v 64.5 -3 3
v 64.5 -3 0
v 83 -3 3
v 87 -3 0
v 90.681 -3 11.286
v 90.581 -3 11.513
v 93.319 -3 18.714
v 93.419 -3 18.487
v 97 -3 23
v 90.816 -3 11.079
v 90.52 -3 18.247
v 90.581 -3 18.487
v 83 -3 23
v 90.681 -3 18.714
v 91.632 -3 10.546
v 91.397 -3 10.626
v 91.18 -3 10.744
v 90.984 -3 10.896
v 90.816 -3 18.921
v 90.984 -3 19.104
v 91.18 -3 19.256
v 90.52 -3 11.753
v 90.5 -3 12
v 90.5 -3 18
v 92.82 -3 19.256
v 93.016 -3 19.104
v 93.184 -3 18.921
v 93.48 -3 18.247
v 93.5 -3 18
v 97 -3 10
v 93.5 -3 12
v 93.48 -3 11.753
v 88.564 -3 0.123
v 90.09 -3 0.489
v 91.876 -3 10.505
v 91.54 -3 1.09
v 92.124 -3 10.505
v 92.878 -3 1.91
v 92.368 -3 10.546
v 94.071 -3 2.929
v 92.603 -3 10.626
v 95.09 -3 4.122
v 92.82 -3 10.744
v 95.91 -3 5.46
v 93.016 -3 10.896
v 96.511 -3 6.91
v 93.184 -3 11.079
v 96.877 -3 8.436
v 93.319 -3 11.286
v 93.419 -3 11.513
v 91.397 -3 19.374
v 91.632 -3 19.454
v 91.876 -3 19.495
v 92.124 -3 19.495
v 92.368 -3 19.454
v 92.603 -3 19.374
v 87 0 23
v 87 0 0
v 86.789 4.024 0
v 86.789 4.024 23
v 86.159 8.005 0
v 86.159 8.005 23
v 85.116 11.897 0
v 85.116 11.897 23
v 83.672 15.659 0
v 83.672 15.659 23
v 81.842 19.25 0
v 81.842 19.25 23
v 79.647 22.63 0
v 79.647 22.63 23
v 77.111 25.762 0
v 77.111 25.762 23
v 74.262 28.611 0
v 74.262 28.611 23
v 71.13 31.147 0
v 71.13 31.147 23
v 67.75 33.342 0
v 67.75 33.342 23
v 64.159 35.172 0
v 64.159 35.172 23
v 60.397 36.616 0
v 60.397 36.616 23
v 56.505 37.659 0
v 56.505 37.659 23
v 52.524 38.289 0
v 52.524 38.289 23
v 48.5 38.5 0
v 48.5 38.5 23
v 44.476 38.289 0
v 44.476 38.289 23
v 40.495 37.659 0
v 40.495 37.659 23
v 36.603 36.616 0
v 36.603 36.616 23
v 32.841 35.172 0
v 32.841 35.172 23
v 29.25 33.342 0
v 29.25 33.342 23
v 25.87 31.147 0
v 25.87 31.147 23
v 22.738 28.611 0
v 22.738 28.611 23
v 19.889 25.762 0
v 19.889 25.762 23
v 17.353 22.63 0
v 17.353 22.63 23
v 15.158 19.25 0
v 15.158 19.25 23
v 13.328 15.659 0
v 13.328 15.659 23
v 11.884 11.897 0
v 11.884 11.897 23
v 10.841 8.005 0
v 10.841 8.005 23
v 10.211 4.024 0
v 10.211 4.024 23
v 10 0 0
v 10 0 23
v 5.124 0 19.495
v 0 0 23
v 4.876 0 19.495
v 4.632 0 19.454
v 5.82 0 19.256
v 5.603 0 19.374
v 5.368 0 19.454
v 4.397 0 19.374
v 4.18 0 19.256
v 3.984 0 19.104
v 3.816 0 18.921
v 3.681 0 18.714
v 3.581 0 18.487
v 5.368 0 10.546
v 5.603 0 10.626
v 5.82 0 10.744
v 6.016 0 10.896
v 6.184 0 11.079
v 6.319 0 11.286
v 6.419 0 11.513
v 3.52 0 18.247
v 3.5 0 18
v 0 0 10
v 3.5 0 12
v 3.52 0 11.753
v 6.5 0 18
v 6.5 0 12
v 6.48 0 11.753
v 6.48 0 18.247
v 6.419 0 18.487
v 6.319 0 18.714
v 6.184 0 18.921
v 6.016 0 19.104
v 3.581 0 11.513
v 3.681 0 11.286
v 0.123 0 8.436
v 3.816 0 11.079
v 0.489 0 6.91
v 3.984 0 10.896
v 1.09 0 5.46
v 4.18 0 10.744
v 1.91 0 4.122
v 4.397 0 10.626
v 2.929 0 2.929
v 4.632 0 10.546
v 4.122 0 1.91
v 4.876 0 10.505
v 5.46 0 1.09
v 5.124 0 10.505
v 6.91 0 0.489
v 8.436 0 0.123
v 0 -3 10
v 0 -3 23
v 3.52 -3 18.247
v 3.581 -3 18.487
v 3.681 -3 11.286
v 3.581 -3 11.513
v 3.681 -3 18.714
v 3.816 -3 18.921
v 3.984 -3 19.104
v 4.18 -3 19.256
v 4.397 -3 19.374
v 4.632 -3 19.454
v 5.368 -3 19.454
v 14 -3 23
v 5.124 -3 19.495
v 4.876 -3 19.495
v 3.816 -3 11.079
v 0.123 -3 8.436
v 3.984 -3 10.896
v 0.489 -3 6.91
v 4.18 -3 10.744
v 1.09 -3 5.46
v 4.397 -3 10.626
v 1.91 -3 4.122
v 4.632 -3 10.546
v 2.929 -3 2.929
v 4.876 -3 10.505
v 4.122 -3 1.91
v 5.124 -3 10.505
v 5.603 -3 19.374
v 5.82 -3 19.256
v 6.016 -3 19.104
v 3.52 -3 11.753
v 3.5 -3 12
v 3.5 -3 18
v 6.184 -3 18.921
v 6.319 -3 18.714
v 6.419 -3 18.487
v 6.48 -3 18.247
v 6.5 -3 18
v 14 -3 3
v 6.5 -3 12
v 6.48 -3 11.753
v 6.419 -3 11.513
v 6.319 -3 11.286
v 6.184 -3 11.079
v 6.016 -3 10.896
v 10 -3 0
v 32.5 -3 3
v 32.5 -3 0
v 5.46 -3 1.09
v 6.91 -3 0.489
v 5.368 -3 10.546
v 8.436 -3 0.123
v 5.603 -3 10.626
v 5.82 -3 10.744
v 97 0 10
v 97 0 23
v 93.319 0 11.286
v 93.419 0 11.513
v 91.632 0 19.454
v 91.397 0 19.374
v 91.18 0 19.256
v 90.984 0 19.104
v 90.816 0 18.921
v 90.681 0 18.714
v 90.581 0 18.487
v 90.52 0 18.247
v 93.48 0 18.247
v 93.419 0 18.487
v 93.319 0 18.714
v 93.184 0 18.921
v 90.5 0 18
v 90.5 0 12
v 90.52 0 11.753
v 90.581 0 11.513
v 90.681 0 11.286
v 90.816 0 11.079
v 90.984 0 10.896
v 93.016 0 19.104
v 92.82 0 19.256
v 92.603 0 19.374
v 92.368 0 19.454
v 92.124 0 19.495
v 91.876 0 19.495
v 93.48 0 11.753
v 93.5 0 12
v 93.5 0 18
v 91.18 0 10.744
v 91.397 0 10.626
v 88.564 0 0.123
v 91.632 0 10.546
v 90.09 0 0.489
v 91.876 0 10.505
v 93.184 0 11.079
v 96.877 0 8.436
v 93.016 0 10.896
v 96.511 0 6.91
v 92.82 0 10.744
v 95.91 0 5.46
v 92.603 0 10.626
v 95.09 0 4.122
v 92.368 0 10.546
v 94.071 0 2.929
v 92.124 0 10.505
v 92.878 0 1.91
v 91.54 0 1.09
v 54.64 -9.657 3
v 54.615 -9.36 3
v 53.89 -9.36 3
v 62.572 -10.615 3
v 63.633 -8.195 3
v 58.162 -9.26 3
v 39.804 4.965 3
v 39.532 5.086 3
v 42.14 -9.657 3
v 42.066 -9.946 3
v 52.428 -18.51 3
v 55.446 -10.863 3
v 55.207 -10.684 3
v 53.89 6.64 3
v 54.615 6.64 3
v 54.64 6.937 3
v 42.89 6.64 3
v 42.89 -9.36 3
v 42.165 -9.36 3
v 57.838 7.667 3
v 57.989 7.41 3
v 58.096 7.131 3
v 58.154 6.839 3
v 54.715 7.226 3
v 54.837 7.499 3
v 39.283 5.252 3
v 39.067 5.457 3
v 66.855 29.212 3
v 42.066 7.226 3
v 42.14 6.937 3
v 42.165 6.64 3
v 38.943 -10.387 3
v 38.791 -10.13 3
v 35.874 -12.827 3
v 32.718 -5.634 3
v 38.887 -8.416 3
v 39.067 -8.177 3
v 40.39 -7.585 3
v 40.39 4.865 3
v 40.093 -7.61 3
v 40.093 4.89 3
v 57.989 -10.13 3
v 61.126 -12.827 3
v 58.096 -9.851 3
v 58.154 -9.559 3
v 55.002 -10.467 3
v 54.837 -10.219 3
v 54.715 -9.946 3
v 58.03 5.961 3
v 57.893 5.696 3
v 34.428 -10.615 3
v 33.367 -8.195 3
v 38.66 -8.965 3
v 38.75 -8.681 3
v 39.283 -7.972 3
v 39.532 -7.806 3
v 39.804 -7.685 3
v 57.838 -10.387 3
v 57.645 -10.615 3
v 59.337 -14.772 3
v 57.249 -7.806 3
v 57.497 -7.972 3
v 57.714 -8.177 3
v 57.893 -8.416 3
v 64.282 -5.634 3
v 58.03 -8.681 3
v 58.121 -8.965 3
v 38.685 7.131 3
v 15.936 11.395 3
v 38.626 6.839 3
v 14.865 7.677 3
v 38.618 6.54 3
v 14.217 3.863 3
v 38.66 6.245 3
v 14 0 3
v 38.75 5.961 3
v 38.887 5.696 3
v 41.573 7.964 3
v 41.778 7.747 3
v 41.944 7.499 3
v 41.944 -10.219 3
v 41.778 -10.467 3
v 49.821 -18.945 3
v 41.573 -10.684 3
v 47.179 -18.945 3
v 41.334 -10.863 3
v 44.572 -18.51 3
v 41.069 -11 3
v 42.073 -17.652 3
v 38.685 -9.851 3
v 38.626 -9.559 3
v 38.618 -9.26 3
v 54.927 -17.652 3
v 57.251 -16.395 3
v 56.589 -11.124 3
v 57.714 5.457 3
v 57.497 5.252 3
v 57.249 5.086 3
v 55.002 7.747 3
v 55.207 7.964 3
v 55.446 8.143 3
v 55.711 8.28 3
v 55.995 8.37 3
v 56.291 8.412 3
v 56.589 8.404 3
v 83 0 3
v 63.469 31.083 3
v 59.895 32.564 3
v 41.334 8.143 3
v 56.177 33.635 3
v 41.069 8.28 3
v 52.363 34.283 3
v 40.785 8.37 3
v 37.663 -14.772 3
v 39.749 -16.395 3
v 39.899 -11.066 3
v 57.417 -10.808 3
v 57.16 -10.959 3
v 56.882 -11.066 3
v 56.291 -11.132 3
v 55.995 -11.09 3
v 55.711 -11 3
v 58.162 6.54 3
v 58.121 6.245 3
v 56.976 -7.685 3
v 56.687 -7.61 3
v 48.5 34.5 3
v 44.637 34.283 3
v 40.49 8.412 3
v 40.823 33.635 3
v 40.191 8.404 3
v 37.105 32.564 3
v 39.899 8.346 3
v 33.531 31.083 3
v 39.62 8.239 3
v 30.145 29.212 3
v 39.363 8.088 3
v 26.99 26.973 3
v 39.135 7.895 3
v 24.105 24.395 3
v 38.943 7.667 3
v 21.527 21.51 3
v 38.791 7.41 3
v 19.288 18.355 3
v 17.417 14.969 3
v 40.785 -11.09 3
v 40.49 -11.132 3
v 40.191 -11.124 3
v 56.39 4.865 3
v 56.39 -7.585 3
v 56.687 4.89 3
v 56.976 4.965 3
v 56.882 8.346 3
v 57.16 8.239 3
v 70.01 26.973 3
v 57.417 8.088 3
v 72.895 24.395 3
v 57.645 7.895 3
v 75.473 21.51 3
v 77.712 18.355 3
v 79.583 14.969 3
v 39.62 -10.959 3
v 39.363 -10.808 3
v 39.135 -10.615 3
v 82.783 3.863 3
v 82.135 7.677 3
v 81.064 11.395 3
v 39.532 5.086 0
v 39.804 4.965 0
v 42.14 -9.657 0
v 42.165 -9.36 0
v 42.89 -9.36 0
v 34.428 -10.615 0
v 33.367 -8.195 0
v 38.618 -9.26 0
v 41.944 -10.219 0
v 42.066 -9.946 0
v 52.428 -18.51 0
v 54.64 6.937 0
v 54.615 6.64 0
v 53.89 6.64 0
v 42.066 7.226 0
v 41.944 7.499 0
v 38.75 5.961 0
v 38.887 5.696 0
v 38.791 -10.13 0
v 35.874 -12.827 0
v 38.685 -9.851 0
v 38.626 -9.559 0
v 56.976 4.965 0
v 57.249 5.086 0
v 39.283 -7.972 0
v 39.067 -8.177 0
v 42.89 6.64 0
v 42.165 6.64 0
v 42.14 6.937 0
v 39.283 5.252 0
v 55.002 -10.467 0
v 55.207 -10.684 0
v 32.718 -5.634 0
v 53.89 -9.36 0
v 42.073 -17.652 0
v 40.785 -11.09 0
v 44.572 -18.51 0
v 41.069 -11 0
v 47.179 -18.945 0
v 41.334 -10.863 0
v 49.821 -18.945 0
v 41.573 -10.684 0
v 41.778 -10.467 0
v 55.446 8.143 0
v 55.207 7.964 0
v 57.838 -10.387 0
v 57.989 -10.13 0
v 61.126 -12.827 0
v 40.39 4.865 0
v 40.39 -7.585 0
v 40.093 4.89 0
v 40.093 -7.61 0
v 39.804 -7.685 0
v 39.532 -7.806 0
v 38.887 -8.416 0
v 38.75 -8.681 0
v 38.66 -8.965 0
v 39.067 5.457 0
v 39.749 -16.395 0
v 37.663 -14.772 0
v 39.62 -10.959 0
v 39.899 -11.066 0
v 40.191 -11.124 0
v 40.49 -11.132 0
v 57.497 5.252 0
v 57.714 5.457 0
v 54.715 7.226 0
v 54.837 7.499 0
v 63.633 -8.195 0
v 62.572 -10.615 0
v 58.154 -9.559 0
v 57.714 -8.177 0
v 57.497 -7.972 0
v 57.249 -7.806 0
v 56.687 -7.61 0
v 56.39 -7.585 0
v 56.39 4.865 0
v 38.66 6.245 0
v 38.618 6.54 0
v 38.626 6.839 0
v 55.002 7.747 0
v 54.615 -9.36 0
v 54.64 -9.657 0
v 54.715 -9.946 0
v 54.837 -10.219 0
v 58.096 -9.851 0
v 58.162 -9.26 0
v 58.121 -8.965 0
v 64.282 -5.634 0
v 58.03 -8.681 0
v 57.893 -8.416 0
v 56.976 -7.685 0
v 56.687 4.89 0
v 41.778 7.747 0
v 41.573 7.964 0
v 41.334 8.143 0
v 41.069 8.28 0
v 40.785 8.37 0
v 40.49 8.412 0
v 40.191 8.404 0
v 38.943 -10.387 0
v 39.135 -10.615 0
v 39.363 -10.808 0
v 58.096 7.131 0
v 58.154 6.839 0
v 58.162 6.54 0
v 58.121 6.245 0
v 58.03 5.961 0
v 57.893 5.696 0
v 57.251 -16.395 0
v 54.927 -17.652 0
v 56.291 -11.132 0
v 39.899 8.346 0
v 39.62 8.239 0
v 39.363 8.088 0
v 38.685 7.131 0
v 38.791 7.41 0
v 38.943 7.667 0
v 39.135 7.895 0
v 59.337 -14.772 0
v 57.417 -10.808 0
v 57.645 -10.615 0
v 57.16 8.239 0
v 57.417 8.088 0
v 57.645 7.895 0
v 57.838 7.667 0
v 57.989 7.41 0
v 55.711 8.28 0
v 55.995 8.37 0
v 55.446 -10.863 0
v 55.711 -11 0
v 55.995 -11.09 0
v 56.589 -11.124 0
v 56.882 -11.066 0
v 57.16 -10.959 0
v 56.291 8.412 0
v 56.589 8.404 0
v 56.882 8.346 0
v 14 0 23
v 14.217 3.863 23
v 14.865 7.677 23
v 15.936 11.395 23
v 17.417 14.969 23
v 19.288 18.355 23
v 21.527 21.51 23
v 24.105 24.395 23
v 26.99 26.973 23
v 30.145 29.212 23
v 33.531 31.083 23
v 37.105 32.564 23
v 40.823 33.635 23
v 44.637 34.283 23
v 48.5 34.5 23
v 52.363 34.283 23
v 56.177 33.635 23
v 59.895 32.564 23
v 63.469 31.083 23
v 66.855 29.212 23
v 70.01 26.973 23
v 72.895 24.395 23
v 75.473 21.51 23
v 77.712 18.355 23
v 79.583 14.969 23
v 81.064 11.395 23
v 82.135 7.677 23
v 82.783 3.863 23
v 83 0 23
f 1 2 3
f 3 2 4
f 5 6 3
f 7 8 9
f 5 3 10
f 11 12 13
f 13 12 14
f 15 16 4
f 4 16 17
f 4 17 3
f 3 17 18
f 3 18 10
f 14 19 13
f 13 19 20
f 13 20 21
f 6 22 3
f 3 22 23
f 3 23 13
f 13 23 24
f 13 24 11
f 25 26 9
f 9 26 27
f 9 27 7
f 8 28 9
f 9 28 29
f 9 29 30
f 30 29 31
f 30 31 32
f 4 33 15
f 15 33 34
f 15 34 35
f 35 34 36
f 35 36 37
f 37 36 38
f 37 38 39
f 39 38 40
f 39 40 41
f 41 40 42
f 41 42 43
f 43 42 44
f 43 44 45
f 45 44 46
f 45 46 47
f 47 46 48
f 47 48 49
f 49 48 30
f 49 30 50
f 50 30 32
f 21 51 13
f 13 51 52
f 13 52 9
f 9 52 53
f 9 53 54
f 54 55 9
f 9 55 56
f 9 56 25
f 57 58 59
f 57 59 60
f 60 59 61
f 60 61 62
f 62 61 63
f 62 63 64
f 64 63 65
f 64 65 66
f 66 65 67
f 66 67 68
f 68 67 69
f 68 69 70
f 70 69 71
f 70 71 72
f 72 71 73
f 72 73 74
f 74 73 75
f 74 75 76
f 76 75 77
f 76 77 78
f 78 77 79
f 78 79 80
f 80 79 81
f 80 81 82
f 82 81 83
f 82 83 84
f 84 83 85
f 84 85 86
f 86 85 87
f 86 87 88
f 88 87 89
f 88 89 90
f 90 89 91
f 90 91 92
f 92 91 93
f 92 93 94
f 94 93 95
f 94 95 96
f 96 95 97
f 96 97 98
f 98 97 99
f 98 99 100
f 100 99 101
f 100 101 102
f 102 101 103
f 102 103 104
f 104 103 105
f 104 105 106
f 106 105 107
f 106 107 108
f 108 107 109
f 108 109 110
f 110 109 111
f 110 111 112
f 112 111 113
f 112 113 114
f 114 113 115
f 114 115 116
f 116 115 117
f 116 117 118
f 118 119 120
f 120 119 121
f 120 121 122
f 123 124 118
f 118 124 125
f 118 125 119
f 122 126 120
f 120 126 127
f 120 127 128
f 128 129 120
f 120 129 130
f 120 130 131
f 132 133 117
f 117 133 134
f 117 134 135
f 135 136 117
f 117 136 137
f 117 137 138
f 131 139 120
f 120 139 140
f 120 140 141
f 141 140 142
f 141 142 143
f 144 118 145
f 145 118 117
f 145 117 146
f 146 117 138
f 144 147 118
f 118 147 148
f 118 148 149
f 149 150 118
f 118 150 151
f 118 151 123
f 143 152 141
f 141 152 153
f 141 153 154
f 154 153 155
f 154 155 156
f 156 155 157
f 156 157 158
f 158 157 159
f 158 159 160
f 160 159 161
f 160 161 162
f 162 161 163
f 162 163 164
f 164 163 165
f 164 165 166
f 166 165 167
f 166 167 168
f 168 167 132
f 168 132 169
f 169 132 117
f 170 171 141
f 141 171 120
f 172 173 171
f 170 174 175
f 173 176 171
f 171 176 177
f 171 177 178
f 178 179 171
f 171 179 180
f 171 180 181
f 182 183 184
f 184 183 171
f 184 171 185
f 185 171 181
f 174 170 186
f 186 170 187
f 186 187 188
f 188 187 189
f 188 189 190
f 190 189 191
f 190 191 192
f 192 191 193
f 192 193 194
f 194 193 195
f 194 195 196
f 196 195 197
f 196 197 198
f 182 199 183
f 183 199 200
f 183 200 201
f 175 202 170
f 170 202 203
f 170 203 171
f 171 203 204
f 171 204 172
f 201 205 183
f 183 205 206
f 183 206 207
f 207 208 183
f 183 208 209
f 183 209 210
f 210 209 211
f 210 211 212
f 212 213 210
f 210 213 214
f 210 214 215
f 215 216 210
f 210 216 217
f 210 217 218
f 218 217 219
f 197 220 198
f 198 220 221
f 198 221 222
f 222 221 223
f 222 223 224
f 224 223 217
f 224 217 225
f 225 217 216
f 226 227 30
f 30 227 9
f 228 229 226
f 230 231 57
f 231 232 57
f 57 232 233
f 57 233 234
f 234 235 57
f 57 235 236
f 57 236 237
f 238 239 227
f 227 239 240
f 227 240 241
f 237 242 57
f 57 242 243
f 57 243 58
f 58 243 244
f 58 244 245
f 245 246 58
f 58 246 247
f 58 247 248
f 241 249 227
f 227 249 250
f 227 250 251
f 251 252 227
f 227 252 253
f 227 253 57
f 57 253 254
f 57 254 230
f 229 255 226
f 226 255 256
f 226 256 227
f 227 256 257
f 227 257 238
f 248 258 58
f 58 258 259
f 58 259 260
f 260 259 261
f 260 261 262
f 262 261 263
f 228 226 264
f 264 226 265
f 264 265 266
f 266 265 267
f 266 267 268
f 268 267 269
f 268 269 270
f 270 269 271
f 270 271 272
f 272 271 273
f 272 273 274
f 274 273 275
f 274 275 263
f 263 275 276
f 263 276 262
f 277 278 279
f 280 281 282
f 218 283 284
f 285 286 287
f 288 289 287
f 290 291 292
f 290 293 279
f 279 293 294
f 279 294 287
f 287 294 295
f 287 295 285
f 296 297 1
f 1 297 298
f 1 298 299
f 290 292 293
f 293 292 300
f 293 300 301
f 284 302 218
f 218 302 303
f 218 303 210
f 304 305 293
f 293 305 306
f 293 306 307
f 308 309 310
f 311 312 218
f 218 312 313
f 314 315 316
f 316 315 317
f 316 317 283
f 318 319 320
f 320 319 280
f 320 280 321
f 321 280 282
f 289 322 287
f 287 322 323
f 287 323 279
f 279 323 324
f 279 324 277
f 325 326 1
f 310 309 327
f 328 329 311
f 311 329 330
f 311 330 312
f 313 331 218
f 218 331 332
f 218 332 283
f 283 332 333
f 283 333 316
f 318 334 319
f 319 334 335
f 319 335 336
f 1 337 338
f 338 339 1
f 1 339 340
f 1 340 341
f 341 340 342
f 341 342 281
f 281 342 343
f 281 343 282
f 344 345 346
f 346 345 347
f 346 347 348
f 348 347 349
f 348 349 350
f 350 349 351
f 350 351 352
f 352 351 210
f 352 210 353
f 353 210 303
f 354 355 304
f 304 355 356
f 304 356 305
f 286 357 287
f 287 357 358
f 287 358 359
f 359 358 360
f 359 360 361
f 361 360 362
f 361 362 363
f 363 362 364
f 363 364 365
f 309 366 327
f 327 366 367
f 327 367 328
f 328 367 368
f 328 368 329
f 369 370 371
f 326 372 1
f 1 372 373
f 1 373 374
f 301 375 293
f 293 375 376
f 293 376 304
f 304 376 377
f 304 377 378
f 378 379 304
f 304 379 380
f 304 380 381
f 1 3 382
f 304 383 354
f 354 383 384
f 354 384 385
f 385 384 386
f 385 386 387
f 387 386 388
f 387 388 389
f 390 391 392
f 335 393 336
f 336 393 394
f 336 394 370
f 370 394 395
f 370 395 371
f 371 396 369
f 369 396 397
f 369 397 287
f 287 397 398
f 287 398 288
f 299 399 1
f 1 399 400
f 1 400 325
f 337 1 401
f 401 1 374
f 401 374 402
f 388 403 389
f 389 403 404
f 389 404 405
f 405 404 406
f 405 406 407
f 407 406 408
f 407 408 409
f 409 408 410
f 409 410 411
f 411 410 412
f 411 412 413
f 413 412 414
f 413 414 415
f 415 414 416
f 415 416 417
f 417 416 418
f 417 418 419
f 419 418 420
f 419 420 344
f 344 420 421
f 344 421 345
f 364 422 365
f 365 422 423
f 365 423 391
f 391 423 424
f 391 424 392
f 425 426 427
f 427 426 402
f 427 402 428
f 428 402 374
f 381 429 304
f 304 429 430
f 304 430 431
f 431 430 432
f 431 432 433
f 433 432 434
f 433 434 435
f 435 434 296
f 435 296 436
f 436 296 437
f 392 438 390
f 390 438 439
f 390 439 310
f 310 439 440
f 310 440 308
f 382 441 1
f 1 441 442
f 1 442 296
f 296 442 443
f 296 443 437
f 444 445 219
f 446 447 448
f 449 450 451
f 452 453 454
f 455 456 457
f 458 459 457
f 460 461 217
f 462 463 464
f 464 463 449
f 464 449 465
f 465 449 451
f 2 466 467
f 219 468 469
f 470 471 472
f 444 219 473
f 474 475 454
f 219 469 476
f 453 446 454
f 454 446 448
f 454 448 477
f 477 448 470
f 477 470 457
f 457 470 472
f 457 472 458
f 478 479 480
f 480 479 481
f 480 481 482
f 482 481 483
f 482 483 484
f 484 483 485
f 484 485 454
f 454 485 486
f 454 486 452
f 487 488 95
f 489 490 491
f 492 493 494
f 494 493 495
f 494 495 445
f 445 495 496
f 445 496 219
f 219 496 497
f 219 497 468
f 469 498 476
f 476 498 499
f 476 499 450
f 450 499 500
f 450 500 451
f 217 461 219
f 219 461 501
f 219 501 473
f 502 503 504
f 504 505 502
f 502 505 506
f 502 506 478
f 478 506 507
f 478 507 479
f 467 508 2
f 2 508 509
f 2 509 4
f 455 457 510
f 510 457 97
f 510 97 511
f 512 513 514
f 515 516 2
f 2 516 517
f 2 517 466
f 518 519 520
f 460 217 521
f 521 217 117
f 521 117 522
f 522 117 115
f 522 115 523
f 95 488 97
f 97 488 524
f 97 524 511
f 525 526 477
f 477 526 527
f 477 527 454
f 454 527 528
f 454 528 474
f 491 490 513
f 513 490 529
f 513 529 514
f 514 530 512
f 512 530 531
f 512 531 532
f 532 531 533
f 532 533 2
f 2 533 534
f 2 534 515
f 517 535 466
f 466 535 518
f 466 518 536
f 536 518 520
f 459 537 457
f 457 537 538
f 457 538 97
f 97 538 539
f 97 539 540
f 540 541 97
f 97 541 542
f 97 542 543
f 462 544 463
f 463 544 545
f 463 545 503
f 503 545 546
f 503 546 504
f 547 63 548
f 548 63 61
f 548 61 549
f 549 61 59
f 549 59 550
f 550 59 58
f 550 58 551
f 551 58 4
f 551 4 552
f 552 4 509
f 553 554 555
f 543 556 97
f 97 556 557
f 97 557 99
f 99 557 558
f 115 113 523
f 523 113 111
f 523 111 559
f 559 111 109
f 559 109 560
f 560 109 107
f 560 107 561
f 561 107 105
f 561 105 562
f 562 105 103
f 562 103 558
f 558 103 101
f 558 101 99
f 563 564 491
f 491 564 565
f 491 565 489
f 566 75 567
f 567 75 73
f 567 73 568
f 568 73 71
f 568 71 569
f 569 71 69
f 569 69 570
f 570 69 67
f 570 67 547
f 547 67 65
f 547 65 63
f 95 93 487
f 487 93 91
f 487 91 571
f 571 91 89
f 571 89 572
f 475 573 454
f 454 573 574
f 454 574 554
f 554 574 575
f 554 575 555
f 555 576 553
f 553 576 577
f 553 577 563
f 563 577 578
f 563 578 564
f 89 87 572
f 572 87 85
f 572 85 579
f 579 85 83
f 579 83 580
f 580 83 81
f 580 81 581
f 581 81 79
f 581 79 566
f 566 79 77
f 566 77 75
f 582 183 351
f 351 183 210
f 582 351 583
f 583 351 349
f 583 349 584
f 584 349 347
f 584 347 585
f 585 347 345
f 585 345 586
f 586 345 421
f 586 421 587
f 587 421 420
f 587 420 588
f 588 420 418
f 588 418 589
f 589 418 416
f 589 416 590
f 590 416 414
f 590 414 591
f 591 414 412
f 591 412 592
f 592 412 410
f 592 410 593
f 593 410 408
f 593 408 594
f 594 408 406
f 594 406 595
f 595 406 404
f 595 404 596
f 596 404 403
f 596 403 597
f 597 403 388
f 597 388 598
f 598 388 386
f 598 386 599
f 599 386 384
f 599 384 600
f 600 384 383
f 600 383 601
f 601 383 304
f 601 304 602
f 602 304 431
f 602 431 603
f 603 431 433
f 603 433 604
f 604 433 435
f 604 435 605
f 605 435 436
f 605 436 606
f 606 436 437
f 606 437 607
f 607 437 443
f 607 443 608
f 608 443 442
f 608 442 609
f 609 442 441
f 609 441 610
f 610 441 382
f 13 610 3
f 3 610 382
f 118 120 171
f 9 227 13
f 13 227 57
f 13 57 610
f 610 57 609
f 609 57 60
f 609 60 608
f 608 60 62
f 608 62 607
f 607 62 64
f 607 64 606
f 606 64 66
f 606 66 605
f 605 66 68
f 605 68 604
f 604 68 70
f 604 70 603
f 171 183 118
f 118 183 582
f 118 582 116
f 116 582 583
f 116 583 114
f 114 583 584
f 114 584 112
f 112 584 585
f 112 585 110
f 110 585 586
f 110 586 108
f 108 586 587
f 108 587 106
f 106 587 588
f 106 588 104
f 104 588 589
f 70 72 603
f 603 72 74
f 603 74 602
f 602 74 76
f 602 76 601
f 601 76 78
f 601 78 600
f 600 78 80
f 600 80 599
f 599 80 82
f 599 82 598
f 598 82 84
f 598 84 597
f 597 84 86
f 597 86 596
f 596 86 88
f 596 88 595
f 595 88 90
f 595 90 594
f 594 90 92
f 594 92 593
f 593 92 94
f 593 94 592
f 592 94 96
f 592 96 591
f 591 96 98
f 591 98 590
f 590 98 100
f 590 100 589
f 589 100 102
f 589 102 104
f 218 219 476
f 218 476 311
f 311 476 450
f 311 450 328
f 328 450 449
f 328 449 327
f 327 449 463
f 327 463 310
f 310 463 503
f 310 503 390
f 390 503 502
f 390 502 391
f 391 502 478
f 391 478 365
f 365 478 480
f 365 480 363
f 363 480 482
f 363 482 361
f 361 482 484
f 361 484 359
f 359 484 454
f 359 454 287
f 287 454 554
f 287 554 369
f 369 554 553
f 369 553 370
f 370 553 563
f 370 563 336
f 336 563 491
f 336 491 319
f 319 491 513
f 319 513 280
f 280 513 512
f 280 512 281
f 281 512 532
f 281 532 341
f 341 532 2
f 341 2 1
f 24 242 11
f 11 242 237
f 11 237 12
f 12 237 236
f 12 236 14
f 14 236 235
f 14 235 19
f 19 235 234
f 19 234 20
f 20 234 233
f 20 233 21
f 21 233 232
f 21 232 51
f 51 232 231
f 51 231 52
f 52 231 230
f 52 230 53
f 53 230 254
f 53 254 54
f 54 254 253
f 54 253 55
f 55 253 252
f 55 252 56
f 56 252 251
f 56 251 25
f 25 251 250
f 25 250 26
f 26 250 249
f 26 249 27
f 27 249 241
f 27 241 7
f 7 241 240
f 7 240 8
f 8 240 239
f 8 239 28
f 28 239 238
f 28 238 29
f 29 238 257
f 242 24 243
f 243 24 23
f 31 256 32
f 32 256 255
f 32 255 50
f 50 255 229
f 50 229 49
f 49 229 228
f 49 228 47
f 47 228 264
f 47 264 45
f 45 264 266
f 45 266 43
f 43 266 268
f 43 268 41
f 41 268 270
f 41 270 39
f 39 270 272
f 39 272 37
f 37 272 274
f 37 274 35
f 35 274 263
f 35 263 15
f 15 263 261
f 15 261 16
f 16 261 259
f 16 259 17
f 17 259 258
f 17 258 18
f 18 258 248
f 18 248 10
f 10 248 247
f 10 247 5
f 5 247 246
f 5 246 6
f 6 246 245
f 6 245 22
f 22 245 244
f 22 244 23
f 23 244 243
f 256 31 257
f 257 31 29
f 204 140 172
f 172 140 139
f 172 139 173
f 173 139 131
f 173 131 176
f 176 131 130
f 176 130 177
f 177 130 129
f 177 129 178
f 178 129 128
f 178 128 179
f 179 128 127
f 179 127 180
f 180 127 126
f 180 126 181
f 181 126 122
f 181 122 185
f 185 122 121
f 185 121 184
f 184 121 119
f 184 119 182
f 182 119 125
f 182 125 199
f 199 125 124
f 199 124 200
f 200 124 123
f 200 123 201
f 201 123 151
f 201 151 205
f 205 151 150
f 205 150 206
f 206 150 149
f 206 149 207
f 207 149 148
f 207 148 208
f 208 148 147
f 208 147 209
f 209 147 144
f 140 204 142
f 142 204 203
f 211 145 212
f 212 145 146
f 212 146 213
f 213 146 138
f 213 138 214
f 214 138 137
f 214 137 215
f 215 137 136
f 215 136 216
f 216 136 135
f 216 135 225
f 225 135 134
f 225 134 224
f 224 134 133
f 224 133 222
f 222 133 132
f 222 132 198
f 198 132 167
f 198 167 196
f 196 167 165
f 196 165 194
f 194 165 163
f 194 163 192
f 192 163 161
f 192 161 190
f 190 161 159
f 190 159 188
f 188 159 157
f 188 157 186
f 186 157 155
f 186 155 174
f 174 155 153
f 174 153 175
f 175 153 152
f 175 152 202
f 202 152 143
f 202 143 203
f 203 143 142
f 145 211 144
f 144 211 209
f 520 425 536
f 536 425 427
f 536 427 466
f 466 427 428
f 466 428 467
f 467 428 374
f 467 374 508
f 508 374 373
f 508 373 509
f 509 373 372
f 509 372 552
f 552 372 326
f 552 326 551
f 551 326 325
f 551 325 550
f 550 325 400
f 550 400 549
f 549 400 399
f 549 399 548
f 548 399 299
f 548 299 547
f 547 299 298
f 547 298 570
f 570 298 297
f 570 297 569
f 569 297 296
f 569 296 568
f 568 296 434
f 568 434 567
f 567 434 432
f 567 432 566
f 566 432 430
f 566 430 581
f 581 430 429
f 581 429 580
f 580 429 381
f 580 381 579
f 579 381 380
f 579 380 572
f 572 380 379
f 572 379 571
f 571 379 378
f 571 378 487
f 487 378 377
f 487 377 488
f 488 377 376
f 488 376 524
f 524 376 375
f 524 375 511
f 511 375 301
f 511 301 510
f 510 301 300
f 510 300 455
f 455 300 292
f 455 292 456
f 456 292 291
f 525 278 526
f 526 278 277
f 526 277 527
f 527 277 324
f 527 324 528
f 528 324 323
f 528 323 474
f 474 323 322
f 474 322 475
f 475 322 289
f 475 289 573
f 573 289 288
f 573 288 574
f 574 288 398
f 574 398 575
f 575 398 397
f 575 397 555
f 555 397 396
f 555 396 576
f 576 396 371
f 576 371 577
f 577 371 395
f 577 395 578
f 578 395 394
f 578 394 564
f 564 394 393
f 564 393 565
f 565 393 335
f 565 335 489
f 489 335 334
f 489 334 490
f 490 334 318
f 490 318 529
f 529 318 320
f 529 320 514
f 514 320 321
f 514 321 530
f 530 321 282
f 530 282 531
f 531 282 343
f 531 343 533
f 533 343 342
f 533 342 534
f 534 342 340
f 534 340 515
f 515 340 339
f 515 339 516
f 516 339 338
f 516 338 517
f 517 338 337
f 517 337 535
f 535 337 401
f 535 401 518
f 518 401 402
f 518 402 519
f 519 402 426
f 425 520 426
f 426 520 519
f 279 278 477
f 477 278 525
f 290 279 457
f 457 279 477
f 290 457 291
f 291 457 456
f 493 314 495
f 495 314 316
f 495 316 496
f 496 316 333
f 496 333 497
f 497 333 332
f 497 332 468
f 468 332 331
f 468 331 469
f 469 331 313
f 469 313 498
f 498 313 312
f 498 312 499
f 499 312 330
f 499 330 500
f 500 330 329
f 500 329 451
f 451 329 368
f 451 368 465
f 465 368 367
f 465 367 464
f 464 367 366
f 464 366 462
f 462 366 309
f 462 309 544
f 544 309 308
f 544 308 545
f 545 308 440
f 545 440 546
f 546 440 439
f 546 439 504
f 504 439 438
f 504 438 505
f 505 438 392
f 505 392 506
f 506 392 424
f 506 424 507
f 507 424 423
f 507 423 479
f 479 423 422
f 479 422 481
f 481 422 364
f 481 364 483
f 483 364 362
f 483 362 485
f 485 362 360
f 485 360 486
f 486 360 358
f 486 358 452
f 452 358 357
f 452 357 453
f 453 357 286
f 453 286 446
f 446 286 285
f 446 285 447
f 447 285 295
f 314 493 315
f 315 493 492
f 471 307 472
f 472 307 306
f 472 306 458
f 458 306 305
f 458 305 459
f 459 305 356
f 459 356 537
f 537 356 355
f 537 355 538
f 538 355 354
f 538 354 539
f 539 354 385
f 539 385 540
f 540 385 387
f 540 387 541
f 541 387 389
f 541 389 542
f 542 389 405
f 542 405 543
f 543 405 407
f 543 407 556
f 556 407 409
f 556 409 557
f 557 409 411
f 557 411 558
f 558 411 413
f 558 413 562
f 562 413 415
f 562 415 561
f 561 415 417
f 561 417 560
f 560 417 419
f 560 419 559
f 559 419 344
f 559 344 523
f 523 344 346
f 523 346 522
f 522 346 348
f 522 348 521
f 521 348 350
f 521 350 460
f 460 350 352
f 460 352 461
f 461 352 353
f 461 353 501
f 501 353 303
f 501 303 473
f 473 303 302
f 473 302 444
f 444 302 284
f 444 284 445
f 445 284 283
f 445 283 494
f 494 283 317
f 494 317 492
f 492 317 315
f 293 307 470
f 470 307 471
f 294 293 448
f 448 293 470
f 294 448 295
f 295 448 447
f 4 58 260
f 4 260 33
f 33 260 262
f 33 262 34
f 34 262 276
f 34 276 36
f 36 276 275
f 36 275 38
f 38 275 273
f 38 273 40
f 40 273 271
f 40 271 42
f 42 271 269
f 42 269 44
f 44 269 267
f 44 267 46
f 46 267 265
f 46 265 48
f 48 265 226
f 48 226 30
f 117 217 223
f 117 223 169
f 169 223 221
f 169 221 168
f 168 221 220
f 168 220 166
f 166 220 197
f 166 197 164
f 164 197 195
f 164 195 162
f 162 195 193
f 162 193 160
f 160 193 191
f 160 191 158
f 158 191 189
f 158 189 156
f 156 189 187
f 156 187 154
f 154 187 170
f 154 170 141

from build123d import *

# Parameters (mm, degrees)
BOSS_EXTRU_1_DEPTH      = 3
BOSS_EXTRU_2_DEPTH      = 20
BOSS_EXTRU_3_DEPTH      = 3
ENL_V_MAT_EXTRU_2_DEPTH = 10
ENL_V_MAT_EXTRU_3_DEPTH = 10
CONG_1_R                = 10
CONG_2_R                = 10


with BuildPart() as part:
    # Esquisse1 → Boss.-Extru.1 (new body)
    with BuildSketch(Plane.XY):
        with BuildLine():
            Line((10, 0), (0, 0))
            Line((0, 0), (0, -3))
            Line((0, -3), (97, -3))
            Line((97, -3), (97, 0))
            Line((97, 0), (87, 0))
            ThreePointArc((87, 0), (48.5, 38.5), (10, 0))
        make_face()
    extrude(amount=BOSS_EXTRU_1_DEPTH)

    # Esquisse2 → Boss.-Extru.2 (add)
    with BuildSketch(Plane.XY.offset(3)):
        with BuildLine():
            Line((10, 0), (0, 0))
            Line((0, 0), (0, -3))
            Line((0, -3), (14, -3))
            Line((14, -3), (14, 0))
            ThreePointArc((14, 0), (48.5, 34.5), (83, 0))
            Line((83, 0), (83, -3))
            Line((83, -3), (97, -3))
            Line((97, -3), (97, 0))
            Line((97, 0), (87, 0))
            ThreePointArc((87, 0), (48.5, 38.5), (10, 0))
        make_face()
    extrude(amount=BOSS_EXTRU_2_DEPTH)

    # Esquisse4 → Boss.-Extru.3 (add)
    with BuildSketch(Plane(origin=(0, 0, 0), x_dir=(-1, 0, 0), z_dir=(0, 0, -1))):
        with BuildLine():
            Line((-64.5, -3), (-32.5, -3))
            ThreePointArc((-32.5, -3), (-48.5, -19), (-64.5, -3))
        make_face()
    extrude(amount=-BOSS_EXTRU_3_DEPTH)

    # Esquisse7 → Enlèv. mat.-Extru.2 (cut)
    with BuildSketch(Plane(origin=(0, 0, 0), x_dir=(1, 0, 0), z_dir=(0, 1, 0))):
        with BuildLine():
            Line((3.5, -18), (3.5, -12))
            ThreePointArc((3.5, -12), (5, -10.5), (6.5, -12))
            Line((6.5, -12), (6.5, -18))
            ThreePointArc((6.5, -18), (5, -19.5), (3.5, -18))
        make_face()
        with BuildLine():
            Line((90.5, -18), (90.5, -12))
            ThreePointArc((90.5, -12), (92, -10.5), (93.5, -12))
            Line((93.5, -12), (93.5, -18))
            ThreePointArc((93.5, -18), (92, -19.5), (90.5, -18))
        make_face()
    extrude(amount=-ENL_V_MAT_EXTRU_2_DEPTH, mode=Mode.SUBTRACT)

    # Esquisse9 → Enlèv. mat.-Extru.3 (cut)
    with BuildSketch(Plane.XY.offset(3)):
        with BuildLine():
            ThreePointArc((42.16513432, 6.64), (39.135019783, 7.895114537), (40.39013432, 4.865))
            Line((40.39013432, 4.865), (40.39013432, -7.585))
            ThreePointArc((40.39013432, -7.585), (39.135019783, -10.615114537), (42.16513432, -9.36))
            Line((42.16513432, -9.36), (42.89013432, -9.36))
            Line((42.89013432, -9.36), (42.89013432, 6.64))
            Line((42.89013432, 6.64), (42.16513432, 6.64))
        make_face()
        with BuildLine():
            Line((56.39013432, -7.585), (56.39013432, 4.865))
            ThreePointArc((56.39013432, 4.865), (57.645248856, 7.895114537), (54.61513432, 6.64))
            Line((54.61513432, 6.64), (53.89013432, 6.64))
            Line((53.89013432, 6.64), (53.89013432, -9.36))
            Line((53.89013432, -9.36), (54.61513432, -9.36))
            ThreePointArc((54.61513432, -9.36), (57.645248856, -10.615114537), (56.39013432, -7.585))
        make_face()
    extrude(amount=-ENL_V_MAT_EXTRU_3_DEPTH, mode=Mode.SUBTRACT)

    # Congé1
    cong_1_edges = [part.edges().sort_by_distance(p)[0] for p in [
        (97, -1.5, 0),
    ]]
    fillet(cong_1_edges, radius=CONG_1_R)

    # Congé2
    cong_2_edges = [part.edges().sort_by_distance(p)[0] for p in [
        (0, -1.5, 0),
    ]]
    fillet(cong_2_edges, radius=CONG_2_R)


solid = part.part
